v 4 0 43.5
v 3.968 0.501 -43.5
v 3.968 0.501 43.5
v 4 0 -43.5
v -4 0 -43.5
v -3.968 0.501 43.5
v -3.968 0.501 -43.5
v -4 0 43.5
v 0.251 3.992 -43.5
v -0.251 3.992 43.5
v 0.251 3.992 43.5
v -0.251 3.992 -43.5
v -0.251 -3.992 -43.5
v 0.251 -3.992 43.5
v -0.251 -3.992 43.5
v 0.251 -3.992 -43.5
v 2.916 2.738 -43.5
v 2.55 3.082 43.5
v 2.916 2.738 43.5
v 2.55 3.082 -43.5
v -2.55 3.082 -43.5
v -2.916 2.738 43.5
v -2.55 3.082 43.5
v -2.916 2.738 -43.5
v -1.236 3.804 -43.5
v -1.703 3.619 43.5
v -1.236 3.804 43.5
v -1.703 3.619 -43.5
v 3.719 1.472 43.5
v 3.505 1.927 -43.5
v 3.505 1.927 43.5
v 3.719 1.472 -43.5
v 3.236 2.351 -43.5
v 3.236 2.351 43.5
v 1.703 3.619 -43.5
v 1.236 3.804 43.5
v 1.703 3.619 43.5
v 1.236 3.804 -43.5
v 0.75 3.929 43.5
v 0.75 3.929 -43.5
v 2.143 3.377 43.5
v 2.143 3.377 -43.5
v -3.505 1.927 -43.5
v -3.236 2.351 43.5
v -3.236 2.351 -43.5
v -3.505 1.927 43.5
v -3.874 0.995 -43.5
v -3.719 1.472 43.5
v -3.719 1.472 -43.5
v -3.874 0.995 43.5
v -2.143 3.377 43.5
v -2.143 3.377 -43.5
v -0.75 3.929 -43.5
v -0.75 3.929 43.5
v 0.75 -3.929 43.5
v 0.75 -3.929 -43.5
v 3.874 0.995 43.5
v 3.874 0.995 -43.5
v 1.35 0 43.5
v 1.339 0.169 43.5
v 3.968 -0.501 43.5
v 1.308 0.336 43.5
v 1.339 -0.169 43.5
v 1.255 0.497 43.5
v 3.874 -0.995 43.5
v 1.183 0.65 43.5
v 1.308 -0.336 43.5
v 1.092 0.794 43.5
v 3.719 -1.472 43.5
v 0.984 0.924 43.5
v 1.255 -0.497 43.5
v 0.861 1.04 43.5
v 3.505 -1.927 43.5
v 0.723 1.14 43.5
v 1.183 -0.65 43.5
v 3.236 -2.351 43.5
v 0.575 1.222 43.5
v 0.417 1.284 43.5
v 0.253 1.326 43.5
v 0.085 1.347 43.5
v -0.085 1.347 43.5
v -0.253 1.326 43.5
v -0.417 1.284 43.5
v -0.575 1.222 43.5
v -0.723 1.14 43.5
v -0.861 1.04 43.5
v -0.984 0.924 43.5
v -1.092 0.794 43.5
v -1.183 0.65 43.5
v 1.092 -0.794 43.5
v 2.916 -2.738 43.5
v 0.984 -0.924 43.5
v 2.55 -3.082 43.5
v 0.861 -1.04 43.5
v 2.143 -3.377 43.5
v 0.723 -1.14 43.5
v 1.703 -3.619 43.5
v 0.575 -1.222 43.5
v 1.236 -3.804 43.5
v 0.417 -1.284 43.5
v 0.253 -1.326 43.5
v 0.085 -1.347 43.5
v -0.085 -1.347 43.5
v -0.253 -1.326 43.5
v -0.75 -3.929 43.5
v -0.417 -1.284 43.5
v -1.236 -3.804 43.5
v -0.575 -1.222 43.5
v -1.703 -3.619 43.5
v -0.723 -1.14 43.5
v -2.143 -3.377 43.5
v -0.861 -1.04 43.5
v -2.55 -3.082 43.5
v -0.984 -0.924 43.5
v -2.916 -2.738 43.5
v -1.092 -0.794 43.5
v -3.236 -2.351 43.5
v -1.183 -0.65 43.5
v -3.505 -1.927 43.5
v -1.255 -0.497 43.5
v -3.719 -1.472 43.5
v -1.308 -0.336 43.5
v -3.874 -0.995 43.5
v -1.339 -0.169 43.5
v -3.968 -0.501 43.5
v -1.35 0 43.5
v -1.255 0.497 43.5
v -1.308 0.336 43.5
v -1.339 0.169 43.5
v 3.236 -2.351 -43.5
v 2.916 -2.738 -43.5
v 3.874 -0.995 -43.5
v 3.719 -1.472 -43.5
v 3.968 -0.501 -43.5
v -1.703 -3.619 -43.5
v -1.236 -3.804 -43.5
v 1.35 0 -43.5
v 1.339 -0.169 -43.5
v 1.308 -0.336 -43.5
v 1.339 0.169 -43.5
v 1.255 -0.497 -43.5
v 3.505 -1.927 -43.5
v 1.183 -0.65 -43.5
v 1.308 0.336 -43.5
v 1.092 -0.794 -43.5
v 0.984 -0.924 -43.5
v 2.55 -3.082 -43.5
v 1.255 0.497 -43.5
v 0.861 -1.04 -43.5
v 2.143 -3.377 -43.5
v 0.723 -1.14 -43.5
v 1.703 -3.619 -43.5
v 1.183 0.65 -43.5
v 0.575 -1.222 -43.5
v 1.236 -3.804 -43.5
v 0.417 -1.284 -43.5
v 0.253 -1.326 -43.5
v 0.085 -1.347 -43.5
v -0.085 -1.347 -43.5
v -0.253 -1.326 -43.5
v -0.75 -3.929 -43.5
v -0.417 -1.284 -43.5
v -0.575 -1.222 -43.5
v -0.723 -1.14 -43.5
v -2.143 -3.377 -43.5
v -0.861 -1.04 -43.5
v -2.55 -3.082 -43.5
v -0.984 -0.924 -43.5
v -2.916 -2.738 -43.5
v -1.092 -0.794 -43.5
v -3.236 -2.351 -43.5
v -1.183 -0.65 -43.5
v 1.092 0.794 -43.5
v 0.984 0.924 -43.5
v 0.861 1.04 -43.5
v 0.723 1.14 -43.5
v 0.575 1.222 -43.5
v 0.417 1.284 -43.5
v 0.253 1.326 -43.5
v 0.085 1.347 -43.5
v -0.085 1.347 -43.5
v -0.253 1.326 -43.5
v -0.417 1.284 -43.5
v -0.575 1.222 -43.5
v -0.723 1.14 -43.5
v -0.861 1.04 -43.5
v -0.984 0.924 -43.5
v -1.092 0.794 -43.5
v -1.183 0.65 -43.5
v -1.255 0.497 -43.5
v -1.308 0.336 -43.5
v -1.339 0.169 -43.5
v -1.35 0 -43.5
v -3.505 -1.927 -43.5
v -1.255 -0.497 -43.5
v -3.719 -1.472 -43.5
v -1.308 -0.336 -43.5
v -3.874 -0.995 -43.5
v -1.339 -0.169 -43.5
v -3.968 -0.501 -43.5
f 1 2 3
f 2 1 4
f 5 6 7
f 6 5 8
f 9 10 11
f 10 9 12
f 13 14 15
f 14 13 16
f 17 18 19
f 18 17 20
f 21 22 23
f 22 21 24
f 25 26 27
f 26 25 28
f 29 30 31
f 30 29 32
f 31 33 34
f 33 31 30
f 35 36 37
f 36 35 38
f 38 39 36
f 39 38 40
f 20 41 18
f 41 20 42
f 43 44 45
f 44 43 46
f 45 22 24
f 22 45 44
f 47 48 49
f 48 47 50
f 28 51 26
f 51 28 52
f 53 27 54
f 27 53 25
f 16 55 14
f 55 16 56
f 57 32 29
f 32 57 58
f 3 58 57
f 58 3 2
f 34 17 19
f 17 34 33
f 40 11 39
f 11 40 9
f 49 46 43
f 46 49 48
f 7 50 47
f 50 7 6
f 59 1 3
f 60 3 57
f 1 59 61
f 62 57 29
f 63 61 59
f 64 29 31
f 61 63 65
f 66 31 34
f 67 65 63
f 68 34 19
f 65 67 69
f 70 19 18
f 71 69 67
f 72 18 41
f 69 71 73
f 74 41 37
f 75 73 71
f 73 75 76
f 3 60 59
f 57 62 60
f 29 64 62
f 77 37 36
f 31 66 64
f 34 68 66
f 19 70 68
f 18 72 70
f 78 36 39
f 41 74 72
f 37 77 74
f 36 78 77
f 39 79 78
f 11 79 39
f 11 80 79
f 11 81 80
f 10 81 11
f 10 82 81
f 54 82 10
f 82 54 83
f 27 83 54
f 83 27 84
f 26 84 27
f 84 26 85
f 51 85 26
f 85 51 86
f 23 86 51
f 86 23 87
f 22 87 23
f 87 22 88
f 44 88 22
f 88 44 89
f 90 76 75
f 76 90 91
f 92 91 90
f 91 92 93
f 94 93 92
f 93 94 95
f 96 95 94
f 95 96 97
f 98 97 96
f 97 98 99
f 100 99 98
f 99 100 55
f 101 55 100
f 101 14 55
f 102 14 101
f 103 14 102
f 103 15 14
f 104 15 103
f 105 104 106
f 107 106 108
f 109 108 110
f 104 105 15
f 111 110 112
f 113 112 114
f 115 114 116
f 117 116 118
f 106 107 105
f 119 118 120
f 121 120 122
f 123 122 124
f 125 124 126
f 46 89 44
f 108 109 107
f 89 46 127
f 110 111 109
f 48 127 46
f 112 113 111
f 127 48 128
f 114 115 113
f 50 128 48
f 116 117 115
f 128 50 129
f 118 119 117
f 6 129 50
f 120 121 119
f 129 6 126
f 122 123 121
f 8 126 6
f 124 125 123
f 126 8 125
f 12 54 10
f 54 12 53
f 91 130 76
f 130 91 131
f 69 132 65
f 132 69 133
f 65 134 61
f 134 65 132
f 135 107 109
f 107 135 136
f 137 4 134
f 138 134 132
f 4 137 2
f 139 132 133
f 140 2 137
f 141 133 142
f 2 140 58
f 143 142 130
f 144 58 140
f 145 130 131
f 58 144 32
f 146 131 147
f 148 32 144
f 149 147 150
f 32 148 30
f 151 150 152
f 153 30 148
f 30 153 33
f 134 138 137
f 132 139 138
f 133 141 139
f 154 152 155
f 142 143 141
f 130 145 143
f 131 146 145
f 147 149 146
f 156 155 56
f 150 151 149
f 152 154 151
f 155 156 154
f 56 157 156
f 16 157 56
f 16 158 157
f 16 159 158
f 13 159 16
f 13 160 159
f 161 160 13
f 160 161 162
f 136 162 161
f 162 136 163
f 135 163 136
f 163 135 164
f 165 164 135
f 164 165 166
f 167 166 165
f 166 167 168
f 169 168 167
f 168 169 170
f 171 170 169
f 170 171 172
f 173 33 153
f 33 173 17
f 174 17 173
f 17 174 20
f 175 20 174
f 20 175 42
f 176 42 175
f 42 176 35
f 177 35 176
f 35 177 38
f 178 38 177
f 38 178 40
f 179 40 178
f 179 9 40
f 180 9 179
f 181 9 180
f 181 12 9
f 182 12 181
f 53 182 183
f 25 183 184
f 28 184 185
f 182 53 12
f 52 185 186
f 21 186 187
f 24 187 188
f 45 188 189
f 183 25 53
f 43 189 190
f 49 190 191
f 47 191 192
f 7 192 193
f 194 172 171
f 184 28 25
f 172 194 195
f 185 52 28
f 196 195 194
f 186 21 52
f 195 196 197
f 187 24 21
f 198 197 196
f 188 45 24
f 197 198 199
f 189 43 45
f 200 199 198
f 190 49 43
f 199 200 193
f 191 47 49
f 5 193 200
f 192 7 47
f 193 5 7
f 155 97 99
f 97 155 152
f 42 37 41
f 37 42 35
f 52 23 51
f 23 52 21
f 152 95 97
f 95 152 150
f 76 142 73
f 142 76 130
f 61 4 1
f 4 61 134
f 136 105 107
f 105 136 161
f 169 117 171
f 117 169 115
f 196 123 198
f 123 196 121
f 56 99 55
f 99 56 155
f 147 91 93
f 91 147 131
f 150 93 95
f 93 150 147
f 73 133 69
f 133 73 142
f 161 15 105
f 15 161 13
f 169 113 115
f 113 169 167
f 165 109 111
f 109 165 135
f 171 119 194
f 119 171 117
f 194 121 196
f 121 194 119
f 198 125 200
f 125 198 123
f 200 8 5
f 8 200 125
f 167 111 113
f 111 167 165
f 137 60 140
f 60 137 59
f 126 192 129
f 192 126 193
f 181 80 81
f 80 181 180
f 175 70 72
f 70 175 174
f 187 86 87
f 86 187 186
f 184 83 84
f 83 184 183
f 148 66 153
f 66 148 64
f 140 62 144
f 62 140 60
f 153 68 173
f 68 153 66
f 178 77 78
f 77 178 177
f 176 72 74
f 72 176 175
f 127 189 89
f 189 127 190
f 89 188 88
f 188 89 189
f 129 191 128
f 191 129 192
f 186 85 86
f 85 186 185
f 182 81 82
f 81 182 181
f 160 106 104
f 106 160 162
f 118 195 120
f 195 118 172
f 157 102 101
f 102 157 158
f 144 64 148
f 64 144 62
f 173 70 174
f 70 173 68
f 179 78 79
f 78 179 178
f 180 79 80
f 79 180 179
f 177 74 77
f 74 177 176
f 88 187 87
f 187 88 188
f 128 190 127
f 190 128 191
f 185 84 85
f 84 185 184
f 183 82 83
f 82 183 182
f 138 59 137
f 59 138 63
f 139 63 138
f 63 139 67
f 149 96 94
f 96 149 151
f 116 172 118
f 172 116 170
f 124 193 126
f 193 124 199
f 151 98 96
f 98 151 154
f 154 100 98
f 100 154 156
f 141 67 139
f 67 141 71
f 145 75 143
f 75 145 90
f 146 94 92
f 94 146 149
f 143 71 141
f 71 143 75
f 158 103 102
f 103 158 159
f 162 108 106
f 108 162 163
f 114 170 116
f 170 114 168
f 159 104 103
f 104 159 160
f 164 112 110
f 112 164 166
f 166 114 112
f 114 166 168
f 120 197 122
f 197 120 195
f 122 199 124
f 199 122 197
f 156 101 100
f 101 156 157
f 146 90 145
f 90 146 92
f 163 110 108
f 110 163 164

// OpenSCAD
$fn = 50;


difference() {
	union() {
		translate(v = [0, 0, -43.5000000000]) {
			cylinder(h = 87, r = 4.0000000000);
		}
	}
	union() {
		translate(v = [0, 0, -100.0000000000]) {
			cylinder(h = 200, r = 1.3500000000);
		}
	}
}
